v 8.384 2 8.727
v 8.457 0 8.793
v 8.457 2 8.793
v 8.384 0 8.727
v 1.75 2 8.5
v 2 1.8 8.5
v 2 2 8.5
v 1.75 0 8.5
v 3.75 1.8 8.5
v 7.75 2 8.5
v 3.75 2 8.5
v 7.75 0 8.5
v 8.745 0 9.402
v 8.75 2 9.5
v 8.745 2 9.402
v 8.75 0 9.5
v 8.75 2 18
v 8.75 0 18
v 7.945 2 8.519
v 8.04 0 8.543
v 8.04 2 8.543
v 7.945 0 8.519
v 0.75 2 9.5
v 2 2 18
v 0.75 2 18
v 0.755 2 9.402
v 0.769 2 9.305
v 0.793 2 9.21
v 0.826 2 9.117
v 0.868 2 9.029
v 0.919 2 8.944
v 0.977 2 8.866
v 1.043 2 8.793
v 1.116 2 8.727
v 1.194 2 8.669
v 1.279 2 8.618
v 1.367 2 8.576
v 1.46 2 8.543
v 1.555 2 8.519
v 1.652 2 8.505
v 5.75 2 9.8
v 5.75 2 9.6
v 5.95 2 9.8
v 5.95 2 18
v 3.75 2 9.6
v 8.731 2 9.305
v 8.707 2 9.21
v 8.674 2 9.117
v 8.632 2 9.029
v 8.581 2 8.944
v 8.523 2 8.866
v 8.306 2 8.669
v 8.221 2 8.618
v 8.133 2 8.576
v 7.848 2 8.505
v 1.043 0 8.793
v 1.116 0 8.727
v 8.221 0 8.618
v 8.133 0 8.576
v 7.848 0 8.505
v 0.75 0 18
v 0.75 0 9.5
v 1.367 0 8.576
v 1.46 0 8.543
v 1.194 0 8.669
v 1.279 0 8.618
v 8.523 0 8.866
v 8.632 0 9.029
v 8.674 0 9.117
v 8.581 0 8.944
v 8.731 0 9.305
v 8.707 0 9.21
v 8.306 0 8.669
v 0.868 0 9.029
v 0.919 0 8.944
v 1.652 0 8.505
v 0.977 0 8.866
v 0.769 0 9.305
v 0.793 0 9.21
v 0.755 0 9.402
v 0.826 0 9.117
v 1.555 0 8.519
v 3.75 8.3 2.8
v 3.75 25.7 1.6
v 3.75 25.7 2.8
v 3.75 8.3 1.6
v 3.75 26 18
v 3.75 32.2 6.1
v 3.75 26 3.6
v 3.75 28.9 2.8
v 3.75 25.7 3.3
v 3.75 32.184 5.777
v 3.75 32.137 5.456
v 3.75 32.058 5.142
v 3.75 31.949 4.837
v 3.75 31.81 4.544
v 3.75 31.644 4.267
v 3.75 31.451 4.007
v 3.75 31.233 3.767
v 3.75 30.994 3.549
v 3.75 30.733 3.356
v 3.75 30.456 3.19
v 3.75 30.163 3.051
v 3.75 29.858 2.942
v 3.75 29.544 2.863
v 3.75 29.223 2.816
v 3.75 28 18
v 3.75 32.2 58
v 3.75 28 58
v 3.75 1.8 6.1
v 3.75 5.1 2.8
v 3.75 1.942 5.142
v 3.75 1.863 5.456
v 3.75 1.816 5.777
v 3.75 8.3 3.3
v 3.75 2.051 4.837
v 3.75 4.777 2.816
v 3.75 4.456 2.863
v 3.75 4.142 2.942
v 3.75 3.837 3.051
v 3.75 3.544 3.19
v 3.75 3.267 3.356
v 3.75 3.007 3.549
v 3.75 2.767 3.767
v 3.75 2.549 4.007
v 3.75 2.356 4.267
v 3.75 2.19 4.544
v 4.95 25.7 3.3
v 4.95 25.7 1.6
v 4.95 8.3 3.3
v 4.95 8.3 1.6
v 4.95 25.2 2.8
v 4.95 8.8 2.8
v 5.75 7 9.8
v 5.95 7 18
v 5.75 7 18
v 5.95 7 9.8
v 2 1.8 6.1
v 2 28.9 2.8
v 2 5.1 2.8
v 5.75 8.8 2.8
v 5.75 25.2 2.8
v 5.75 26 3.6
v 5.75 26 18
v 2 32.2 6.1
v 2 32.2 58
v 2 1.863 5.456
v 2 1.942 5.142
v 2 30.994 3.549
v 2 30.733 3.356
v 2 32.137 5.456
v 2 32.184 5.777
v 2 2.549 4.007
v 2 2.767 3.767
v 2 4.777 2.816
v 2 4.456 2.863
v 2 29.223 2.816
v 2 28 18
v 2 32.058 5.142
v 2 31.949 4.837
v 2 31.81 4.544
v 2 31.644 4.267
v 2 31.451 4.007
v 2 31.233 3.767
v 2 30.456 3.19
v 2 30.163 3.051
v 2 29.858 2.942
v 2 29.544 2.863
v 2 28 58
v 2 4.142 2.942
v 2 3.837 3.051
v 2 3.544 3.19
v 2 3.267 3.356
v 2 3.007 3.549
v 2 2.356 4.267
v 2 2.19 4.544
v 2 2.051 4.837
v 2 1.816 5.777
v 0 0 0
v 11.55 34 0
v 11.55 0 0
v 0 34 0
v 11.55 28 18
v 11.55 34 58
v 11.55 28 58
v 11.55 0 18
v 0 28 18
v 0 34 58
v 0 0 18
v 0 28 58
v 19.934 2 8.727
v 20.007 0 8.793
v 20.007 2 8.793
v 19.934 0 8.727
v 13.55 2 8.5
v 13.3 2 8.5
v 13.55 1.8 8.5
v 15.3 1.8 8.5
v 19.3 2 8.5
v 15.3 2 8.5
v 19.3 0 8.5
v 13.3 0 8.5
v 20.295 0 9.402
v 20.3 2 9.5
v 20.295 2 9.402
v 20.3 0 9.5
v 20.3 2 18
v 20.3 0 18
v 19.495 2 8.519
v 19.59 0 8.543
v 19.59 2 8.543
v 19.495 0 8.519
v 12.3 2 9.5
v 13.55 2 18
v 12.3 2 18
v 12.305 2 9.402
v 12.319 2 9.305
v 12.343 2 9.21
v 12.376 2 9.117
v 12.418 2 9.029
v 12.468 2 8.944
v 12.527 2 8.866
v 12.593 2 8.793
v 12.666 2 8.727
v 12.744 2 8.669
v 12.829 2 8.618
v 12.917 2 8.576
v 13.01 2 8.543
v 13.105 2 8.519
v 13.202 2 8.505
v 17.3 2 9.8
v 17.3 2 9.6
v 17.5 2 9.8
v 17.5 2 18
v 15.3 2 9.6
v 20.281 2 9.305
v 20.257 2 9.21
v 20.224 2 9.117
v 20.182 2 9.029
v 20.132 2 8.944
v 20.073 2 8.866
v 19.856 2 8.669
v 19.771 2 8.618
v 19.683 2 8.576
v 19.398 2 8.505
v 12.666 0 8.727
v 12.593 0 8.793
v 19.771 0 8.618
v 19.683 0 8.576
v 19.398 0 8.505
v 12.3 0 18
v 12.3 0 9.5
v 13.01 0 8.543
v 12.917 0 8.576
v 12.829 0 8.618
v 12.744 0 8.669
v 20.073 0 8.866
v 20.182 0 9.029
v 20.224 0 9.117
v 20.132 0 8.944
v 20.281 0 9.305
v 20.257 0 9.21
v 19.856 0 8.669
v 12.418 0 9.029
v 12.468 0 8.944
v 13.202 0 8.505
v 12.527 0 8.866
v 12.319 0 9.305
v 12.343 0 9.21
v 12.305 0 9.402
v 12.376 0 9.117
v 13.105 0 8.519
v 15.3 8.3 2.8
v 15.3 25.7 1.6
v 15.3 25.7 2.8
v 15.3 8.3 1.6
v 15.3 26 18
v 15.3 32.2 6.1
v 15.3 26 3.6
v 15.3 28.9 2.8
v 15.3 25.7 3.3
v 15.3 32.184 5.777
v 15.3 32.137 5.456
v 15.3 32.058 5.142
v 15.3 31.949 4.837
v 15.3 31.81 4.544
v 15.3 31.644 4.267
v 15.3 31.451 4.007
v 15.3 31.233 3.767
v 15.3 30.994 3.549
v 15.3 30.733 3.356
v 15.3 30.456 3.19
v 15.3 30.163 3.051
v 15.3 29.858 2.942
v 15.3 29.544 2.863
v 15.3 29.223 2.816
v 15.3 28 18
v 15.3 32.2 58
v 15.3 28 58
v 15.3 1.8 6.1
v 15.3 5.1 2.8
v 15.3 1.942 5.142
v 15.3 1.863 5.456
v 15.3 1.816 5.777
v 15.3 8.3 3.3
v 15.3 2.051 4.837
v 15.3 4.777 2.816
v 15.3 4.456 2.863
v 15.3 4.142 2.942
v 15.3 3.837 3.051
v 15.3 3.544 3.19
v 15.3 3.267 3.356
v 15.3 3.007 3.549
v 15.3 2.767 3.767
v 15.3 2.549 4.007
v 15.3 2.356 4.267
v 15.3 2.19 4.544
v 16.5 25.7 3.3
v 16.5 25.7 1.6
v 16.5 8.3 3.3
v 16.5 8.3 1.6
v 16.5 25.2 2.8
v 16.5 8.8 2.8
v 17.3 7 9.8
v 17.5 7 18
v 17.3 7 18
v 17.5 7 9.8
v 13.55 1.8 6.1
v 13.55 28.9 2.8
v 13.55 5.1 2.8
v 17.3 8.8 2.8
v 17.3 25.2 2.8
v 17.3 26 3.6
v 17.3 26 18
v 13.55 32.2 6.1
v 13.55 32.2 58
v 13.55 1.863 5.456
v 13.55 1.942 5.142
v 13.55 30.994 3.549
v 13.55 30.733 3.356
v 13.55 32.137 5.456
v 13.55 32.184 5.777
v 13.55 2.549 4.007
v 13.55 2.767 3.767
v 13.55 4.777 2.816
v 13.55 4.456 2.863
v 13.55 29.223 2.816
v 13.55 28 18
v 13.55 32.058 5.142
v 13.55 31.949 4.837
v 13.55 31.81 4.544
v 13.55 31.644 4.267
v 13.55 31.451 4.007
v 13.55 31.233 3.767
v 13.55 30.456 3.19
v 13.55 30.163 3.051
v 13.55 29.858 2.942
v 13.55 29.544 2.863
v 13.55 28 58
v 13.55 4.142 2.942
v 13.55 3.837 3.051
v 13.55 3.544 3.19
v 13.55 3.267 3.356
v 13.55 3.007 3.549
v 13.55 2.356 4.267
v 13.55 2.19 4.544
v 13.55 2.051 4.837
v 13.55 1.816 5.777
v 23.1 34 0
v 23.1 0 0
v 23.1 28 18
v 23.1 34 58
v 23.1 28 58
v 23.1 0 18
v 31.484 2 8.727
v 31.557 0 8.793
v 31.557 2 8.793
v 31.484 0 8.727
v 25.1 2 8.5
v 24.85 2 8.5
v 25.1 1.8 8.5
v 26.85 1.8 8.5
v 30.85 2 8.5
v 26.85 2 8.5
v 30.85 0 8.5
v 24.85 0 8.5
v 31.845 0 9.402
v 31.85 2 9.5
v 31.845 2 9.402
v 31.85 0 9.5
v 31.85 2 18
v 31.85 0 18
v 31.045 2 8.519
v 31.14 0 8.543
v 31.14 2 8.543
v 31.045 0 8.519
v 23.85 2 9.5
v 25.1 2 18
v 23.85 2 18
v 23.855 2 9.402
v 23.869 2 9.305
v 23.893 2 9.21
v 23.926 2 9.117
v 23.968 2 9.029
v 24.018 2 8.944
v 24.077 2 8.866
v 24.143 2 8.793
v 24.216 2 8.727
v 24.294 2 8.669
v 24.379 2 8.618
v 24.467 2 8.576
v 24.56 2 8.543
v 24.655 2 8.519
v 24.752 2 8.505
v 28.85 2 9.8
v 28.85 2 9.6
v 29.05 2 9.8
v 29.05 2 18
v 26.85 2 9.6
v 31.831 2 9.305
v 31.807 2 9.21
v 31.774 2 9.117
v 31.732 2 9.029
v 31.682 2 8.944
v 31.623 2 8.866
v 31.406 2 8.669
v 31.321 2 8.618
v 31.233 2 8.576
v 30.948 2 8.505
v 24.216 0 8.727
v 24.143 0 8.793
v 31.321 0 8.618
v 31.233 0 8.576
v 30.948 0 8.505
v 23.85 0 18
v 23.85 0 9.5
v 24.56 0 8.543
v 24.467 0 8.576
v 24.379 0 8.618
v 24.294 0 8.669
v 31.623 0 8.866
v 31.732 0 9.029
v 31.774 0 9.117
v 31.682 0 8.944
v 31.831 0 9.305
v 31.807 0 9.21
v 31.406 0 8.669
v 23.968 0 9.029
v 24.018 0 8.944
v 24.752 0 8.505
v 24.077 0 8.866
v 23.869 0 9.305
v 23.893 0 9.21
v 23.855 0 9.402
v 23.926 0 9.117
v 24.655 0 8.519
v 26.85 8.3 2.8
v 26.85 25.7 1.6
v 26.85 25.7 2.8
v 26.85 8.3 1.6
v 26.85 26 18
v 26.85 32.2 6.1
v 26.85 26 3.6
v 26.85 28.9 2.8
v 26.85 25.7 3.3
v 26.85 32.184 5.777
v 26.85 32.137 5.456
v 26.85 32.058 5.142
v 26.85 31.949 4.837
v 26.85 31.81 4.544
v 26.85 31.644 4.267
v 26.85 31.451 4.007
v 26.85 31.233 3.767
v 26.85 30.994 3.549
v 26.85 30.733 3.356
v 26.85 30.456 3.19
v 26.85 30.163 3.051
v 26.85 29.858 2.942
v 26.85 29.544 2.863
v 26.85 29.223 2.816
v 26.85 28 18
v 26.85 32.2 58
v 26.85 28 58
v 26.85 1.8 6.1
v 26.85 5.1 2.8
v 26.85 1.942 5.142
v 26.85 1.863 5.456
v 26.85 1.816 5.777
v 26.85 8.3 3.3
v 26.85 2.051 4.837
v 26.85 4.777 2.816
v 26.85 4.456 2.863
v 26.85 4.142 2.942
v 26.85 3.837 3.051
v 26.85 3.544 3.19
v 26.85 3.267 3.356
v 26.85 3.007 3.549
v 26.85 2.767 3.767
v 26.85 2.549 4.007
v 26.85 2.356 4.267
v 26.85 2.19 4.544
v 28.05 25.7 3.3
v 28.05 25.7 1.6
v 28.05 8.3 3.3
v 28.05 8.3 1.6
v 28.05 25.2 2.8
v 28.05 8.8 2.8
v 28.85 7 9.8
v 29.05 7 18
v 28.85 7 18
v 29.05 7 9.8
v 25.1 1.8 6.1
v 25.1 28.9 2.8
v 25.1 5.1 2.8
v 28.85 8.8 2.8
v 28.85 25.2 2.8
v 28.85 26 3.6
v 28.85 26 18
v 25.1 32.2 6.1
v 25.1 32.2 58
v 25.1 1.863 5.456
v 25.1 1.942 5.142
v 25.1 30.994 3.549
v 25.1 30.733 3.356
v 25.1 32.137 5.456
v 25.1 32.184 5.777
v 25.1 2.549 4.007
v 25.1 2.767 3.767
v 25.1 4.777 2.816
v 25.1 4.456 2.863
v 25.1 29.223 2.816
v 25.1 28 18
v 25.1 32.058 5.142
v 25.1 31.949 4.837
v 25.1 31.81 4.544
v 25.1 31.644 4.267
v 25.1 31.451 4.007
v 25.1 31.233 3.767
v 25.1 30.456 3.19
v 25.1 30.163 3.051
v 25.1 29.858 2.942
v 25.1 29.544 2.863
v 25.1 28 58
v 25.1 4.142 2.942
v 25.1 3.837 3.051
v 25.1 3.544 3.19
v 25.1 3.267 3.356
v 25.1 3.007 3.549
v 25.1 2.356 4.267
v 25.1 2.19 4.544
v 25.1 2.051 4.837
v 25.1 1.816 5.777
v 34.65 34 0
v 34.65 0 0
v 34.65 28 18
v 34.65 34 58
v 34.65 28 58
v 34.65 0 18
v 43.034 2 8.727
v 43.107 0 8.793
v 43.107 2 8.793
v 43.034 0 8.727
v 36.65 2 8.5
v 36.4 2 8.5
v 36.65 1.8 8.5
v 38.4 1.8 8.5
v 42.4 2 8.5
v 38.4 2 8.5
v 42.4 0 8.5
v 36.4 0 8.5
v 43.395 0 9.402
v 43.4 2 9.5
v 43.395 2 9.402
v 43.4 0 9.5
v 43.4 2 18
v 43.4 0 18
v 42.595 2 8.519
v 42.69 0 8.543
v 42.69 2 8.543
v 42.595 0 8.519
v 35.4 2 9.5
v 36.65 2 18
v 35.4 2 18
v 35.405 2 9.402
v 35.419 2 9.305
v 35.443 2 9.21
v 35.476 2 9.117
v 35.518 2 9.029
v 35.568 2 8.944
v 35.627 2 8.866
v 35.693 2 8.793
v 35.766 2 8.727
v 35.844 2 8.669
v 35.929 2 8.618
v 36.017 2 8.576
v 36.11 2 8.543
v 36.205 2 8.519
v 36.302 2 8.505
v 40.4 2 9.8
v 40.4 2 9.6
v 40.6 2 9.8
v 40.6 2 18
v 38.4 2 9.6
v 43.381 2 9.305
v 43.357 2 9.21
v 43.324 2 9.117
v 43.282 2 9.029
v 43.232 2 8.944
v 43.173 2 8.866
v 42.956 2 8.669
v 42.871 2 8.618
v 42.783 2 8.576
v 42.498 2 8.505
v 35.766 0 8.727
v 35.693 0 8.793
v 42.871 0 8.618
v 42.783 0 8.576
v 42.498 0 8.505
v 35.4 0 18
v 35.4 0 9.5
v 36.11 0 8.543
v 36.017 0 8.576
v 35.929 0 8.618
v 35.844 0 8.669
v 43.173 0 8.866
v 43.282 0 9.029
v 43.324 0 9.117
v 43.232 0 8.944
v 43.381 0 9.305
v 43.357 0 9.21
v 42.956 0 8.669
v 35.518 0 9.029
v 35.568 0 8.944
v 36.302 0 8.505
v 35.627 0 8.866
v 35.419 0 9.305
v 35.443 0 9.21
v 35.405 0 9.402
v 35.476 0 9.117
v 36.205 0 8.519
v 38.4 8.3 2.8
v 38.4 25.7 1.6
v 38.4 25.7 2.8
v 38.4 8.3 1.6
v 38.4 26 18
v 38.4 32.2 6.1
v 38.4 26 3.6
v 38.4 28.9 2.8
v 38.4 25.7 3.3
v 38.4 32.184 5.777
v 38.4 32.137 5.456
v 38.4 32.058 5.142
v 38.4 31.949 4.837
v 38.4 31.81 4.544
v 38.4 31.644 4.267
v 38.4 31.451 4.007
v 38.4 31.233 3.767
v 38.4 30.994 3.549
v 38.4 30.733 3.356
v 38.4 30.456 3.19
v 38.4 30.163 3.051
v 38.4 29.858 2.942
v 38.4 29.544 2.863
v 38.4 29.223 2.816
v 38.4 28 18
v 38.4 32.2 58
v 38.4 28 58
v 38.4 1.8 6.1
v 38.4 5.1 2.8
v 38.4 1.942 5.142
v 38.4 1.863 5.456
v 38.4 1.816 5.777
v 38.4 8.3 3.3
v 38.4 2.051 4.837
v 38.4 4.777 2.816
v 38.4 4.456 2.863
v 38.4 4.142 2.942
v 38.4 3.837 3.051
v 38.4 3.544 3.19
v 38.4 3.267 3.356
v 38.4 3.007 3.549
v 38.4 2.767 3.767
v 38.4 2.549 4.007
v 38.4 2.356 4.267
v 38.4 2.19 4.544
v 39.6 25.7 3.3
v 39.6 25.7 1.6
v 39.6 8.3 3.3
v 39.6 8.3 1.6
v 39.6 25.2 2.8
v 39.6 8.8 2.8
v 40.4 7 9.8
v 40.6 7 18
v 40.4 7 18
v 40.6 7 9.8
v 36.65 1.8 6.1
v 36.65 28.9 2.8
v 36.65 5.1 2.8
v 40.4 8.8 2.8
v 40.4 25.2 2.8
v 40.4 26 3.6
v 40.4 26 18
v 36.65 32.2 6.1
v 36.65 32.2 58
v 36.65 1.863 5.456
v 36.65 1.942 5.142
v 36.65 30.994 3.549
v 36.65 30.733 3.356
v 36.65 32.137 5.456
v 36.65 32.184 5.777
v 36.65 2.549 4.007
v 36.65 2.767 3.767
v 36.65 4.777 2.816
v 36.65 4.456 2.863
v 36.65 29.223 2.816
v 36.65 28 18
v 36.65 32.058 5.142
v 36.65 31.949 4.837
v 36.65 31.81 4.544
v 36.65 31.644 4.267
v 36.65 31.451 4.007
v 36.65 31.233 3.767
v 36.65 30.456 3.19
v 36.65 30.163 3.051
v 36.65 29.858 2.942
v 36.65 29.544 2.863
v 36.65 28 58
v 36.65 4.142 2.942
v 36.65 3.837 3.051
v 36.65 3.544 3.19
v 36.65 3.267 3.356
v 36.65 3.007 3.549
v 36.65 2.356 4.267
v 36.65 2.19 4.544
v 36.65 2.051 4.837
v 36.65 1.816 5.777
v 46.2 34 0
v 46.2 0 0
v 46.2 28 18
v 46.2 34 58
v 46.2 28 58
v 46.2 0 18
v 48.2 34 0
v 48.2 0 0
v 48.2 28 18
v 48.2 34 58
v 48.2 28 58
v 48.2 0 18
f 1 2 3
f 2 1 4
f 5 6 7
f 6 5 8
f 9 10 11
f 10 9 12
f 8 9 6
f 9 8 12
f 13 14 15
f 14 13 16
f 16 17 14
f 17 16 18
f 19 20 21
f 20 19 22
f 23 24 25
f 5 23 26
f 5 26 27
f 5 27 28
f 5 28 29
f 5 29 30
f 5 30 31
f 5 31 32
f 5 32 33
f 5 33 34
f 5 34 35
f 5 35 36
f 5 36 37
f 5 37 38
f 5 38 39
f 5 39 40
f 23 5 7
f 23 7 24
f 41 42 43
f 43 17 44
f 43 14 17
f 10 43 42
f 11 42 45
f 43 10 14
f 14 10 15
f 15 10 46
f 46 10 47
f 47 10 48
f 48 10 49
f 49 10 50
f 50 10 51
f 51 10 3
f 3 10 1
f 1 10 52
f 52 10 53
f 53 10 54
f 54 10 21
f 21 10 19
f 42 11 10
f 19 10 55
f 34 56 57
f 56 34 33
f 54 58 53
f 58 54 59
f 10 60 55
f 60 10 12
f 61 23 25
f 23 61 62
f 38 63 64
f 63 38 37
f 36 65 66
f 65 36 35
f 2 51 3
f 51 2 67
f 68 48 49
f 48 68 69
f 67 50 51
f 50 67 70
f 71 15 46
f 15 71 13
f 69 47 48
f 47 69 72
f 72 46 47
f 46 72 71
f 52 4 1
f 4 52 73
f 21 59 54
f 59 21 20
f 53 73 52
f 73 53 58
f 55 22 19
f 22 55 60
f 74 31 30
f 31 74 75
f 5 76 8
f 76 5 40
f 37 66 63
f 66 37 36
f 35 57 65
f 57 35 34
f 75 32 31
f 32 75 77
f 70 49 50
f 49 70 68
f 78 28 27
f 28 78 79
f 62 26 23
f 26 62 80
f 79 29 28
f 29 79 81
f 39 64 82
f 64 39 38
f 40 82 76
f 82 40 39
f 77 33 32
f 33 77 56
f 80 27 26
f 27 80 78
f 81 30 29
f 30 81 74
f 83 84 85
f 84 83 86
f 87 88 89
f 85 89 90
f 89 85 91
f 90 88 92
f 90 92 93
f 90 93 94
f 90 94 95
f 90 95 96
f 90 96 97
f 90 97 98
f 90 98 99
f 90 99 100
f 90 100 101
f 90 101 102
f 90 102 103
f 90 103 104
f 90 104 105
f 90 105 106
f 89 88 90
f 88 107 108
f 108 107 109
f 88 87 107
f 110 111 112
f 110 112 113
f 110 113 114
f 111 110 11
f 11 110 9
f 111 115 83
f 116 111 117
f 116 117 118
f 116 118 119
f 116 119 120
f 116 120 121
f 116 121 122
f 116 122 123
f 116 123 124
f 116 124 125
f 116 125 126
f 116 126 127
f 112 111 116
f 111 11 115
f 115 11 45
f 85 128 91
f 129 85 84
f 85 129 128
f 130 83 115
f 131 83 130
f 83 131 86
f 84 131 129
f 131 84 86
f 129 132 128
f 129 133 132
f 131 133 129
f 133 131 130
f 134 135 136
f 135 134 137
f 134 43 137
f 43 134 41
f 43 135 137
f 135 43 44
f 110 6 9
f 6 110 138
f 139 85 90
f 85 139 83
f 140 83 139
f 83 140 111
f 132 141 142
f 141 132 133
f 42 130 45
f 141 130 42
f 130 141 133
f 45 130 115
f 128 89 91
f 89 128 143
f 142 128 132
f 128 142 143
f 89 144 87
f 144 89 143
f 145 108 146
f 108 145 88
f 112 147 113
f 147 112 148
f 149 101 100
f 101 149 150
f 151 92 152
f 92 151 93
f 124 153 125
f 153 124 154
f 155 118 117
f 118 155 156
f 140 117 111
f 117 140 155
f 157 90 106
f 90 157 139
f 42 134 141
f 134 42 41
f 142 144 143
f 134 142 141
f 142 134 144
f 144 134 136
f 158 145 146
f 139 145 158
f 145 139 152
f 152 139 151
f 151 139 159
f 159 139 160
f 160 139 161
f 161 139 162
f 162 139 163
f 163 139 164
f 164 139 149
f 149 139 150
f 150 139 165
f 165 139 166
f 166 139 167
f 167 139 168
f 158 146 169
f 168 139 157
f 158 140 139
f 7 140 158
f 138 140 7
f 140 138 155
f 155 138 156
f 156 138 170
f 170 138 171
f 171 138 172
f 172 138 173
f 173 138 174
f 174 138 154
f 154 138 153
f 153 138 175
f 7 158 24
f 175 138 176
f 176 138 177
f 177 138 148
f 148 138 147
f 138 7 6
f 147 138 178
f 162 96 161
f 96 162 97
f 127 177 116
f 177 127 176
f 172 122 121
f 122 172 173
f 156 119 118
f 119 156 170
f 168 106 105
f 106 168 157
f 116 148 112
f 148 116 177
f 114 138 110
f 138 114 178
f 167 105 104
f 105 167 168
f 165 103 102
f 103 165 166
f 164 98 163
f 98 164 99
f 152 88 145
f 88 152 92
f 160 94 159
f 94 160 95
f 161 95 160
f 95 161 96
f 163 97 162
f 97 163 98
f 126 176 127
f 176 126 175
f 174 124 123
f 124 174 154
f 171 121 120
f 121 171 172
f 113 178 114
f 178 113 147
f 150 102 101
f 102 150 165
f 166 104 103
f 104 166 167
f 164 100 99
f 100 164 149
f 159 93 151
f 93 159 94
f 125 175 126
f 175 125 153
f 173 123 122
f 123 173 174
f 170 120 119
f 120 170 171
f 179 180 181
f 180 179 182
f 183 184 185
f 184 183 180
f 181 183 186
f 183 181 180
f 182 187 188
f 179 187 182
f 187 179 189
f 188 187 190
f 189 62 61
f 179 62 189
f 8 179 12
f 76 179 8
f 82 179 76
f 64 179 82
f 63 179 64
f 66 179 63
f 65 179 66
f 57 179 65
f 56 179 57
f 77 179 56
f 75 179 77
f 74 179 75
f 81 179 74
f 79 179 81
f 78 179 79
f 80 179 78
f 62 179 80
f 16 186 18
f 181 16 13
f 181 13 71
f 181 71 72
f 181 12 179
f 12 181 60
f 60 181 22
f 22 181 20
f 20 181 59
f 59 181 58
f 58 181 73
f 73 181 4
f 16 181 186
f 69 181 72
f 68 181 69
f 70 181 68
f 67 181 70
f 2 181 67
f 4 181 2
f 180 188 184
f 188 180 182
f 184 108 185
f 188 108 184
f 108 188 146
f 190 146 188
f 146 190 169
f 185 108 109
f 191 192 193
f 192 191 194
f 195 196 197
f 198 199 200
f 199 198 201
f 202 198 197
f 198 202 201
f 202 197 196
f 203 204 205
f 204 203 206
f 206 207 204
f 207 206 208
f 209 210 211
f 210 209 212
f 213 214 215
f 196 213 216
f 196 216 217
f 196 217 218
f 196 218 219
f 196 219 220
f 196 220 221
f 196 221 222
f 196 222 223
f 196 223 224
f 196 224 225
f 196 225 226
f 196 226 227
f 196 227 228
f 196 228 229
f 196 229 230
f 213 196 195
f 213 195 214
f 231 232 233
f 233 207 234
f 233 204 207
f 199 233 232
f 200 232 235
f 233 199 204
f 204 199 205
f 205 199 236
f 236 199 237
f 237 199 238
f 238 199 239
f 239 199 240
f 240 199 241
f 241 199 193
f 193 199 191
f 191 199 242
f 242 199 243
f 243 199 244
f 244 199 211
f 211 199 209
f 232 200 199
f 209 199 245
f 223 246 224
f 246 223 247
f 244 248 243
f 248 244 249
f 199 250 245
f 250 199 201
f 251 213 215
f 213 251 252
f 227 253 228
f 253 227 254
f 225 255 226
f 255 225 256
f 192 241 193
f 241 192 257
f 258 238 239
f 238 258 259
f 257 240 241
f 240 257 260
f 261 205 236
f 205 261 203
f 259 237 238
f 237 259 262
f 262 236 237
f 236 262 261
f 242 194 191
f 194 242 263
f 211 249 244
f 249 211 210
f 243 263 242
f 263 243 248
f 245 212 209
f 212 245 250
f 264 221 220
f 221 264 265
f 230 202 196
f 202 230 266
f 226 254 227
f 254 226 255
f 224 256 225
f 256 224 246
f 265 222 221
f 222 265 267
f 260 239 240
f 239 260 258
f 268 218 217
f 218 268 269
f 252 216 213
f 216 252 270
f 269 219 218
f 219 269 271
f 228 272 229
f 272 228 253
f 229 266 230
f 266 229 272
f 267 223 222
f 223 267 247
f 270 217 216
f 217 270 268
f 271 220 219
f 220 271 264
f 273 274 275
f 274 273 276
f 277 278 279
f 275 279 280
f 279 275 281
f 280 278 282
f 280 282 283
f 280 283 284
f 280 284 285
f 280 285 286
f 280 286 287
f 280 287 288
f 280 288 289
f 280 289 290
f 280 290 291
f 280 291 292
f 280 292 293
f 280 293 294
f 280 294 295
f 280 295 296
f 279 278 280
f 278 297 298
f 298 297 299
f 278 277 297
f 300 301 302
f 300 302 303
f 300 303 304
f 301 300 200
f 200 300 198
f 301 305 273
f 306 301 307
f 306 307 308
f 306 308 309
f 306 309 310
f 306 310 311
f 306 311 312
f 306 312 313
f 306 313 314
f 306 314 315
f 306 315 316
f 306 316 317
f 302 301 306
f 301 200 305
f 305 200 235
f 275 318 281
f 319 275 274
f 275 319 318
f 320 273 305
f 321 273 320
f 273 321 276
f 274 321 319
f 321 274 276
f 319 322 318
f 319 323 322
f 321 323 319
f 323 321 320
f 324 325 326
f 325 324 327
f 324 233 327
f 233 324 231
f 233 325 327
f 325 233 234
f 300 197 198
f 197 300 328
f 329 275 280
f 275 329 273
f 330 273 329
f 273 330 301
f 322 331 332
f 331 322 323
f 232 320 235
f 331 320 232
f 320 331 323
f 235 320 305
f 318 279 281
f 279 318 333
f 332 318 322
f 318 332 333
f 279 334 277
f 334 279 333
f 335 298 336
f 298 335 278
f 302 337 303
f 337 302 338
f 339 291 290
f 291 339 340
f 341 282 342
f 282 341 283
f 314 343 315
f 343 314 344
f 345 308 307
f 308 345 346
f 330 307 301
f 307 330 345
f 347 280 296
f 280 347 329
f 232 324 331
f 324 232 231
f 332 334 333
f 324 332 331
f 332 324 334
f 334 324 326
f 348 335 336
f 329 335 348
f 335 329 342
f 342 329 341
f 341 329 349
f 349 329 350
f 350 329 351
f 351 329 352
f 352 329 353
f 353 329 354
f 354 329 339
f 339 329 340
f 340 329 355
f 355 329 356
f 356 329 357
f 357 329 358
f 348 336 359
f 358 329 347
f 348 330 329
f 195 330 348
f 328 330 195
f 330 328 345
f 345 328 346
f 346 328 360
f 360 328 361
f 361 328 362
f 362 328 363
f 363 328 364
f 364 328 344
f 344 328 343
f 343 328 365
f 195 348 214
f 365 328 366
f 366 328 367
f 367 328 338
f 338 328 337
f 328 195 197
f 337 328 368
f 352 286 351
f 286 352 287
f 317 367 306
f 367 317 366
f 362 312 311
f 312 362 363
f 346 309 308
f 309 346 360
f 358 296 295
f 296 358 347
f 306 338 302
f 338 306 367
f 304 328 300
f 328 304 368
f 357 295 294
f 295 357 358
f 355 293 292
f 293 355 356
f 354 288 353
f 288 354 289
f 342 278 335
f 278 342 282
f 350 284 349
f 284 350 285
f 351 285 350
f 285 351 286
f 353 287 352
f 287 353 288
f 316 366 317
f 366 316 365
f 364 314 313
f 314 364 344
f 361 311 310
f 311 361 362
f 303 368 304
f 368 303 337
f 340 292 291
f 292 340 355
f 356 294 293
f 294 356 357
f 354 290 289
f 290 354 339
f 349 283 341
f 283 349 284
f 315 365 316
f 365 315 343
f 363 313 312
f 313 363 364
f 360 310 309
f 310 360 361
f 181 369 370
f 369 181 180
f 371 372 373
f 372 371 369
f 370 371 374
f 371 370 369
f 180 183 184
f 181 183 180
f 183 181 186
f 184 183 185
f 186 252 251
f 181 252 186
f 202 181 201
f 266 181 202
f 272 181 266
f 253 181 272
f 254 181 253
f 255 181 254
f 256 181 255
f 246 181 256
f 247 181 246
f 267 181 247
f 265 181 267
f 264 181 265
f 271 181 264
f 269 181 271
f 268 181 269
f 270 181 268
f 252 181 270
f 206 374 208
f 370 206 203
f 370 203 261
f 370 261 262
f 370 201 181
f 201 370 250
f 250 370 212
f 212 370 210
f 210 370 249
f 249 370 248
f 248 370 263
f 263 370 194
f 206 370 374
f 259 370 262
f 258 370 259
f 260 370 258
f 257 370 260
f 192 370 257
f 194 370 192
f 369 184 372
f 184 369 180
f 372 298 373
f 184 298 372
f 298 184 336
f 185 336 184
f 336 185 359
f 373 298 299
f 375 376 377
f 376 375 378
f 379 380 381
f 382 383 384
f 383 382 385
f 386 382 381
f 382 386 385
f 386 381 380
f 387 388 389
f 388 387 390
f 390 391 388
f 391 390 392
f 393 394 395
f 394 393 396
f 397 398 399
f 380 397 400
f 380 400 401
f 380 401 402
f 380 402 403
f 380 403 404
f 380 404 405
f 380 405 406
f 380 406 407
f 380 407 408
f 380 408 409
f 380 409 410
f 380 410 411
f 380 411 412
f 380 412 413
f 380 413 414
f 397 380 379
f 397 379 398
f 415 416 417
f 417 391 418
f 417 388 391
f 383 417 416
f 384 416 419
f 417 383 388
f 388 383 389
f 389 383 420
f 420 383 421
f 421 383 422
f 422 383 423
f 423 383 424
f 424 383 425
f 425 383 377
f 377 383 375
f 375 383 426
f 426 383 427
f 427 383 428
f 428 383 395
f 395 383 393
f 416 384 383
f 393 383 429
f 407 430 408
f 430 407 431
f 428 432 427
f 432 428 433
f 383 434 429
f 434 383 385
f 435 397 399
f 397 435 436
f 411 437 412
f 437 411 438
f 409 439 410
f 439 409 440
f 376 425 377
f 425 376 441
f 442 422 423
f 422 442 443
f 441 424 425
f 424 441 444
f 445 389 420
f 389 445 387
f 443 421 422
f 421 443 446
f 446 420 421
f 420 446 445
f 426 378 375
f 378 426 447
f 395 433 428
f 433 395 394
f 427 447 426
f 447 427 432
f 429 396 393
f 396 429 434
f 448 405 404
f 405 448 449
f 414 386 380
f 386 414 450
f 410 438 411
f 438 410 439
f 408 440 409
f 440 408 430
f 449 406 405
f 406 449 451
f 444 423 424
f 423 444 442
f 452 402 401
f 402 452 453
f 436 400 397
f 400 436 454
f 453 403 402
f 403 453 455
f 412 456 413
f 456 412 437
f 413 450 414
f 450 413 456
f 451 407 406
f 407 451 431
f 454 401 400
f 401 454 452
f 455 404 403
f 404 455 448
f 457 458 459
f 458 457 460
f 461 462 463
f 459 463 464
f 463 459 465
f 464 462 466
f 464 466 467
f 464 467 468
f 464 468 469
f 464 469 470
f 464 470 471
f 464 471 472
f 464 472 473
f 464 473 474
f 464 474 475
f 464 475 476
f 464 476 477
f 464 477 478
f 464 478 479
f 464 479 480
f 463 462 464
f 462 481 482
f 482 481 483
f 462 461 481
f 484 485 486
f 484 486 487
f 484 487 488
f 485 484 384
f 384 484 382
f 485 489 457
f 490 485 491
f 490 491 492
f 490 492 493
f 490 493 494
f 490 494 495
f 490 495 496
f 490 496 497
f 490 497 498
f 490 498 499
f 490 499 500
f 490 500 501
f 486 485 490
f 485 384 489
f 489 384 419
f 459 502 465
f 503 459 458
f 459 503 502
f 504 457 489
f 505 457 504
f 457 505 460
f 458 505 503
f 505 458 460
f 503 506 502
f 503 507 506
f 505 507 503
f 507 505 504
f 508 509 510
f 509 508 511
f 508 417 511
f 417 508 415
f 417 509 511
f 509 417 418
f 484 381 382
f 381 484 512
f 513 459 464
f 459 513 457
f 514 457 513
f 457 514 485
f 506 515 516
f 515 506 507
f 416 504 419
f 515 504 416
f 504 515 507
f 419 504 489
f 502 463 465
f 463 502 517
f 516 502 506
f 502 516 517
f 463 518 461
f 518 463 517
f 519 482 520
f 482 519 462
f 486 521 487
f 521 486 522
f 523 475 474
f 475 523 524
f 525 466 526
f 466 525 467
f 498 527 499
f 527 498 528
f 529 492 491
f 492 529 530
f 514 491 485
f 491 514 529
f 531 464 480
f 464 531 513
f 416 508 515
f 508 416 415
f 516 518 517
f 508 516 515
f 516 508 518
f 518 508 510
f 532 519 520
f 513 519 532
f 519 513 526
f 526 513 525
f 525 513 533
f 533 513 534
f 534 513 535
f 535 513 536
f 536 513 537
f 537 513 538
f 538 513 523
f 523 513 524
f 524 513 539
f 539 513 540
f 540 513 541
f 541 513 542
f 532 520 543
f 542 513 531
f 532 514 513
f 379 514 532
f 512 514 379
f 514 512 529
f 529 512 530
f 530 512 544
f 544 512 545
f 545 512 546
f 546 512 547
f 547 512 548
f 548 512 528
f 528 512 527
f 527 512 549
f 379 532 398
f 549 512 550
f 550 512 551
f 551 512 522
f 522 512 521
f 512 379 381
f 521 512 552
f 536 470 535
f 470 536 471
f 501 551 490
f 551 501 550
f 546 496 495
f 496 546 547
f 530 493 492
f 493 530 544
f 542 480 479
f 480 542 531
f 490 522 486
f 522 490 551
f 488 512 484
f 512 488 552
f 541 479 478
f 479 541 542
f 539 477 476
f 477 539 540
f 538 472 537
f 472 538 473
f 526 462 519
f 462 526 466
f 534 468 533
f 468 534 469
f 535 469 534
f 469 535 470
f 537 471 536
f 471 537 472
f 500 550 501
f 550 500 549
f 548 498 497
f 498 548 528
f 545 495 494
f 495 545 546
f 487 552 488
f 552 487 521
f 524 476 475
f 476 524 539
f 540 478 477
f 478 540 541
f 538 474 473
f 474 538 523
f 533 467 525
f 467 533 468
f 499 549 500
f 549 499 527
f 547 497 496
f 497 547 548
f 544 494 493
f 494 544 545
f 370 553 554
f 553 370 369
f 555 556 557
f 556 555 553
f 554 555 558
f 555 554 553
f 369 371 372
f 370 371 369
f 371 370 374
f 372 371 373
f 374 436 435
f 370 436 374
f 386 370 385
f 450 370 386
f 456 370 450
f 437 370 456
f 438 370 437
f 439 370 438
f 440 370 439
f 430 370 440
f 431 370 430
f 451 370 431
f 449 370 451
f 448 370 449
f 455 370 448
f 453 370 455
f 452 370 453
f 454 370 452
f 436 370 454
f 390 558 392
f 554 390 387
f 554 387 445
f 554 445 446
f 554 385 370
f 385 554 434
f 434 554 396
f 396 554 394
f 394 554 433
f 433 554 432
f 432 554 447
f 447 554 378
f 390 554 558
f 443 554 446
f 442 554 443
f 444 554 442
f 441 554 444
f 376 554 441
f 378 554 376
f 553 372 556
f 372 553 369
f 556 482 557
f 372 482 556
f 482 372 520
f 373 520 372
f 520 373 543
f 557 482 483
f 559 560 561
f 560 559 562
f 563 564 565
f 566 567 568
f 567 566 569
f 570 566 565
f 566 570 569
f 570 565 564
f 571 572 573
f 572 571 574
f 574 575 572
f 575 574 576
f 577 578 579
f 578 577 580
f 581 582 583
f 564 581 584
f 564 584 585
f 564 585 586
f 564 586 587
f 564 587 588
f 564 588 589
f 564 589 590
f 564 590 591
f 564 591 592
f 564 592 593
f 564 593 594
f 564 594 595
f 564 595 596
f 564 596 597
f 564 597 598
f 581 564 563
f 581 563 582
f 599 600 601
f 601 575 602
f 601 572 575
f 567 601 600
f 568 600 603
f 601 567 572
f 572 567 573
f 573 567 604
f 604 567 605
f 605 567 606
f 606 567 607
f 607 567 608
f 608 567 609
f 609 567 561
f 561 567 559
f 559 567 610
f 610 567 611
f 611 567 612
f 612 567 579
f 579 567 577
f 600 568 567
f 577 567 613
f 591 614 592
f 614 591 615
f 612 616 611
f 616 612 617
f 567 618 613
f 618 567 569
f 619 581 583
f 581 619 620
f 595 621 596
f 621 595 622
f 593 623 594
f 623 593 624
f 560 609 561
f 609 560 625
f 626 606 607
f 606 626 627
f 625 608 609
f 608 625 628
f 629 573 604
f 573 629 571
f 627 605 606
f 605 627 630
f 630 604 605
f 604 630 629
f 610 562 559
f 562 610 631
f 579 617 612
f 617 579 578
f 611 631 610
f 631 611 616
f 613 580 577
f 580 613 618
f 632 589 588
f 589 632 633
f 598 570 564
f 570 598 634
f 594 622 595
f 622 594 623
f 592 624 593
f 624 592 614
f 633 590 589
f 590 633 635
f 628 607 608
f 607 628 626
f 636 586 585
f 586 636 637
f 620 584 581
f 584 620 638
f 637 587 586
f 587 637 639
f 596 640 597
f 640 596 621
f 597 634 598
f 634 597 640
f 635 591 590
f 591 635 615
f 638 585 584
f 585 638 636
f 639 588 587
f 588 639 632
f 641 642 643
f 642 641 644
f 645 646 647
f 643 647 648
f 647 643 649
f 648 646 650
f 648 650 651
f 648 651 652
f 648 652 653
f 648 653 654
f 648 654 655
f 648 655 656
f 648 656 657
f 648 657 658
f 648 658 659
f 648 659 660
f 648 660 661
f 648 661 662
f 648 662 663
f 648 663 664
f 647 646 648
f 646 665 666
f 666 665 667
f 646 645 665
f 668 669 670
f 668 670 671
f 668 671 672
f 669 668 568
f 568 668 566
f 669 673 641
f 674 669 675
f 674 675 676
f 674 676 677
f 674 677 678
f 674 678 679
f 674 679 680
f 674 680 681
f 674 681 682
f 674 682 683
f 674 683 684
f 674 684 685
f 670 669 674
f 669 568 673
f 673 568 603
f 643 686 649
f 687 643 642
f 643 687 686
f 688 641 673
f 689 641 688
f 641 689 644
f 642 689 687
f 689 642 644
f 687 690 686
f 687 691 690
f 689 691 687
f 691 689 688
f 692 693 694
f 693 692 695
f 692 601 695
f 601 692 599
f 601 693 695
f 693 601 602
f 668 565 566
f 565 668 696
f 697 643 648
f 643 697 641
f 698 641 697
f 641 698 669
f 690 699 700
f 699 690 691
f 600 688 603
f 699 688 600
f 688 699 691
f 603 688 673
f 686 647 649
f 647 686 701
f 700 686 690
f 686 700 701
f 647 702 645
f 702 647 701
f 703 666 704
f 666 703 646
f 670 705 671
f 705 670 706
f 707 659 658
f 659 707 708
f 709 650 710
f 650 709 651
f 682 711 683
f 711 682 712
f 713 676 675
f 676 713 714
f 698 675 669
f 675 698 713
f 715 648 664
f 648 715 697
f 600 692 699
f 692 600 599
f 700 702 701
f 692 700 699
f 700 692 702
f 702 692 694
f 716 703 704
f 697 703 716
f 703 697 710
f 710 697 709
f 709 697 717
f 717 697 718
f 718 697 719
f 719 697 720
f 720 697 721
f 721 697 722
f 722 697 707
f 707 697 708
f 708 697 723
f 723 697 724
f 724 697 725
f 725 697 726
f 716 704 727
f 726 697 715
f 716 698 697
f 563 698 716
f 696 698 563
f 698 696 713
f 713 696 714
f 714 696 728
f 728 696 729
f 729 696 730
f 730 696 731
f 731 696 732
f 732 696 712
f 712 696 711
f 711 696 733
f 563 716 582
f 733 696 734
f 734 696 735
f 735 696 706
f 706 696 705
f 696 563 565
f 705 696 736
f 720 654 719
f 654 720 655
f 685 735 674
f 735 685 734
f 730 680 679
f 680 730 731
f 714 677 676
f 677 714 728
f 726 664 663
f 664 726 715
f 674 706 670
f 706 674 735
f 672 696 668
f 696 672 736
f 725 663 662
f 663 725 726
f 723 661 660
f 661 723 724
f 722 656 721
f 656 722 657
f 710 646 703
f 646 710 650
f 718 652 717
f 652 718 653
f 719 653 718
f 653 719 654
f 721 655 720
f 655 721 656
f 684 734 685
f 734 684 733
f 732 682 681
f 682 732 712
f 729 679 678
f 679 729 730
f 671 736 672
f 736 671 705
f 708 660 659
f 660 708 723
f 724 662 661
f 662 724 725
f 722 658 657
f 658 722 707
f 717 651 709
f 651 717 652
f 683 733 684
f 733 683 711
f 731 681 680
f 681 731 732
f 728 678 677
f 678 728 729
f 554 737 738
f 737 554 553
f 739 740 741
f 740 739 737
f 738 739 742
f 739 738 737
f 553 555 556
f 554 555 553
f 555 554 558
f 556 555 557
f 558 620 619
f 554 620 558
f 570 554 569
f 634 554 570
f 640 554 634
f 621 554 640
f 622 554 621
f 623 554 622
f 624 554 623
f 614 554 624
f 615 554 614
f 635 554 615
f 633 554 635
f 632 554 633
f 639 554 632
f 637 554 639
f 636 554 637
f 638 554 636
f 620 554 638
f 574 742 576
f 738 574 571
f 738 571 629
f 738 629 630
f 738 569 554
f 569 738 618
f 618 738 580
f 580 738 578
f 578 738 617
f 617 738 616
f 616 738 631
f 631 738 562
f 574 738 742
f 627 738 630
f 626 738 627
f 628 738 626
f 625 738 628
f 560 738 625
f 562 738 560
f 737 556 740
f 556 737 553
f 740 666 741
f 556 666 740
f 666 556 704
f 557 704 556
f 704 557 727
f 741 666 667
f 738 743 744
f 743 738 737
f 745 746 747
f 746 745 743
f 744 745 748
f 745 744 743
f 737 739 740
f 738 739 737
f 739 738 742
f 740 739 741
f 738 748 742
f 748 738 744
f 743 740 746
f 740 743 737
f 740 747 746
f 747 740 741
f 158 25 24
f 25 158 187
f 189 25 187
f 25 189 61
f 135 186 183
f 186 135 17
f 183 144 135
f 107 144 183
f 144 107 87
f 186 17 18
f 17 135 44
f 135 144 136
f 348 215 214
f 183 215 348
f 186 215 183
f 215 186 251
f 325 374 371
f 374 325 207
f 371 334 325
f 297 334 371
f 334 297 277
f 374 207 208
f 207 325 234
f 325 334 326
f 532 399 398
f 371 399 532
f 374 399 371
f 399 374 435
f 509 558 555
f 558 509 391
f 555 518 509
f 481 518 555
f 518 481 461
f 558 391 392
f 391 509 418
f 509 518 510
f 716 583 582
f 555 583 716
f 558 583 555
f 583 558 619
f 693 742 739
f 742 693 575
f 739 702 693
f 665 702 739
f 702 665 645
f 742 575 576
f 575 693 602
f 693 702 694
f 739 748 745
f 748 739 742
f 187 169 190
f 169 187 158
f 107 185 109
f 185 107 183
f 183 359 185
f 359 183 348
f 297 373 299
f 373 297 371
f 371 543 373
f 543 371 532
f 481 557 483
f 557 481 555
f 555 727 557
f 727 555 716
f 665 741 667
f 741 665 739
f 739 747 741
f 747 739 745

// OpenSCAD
// file: pi-zero.scad
use <rounded-rect.scad>;

piZero(cutOutCorners = true, cutOutGPIO = true);

module piZero(includeCables = true, includeHeatsink = true, heightPadding = 0, sdWidth = 12, cameraWidth = 17, r = 3.5, heatsinkHeight = 7, cutOutCorners = false, cutOutGPIO = false, printerTolerance = 0) {
    // base board
    color("green")
        difference() {
            linear_extrude(0, 0, 1.55 + 2 + heightPadding + printerTolerance)
                difference() {
                    roundedRect(30 + 2 * printerTolerance, 65 + 2 * printerTolerance, max(0, r - printerTolerance));
    //                union() {
    //                    translate([11.5 + printerTolerance, 29 + printerTolerance, 0]) circle(r = 1.25 - printerTolerance);
    //                    translate([-11.5 - printerTolerance, 29 + printerTolerance, 0]) circle(r = 1.25 - printerTolerance);
    //                    translate([11.5 + printerTolerance, -29 - printerTolerance, 0]) circle(r = 1.25 - printerTolerance);
    //                    translate([-11.5 - printerTolerance, -29 - printerTolerance, 0]) circle(r = 1.25 - printerTolerance);
    //                };
                };
                translate([0, 0, 1.55 + heightPadding + printerTolerance]) {
                    if (cutOutCorners) {
                        linear_extrude(0, 0, 3 + printerTolerance)
                            union() {
                                polygon([
                                    [-15-printerTolerance, -32.5-printerTolerance],
                                    [-15-printerTolerance, -32.5-printerTolerance+(2*r)],
                                    [-15-printerTolerance+(2*r), -32.5-printerTolerance]]);
                                polygon([
                                    [-15-printerTolerance, -1*(-32.5-printerTolerance)],
                                    [-15-printerTolerance, -1*(-32.5-printerTolerance+(2*r))],
                                    [-15-printerTolerance+(2*r), -1*(-32.5-printerTolerance)]]);
                                polygon([
                                    [-1*(-15-printerTolerance), -1*(-32.5-printerTolerance)],
                                    [-1*(-15-printerTolerance), -1*(-32.5-printerTolerance+(2*r))],
                                    [-1*(-15-printerTolerance+(2*r)), -1*(-32.5-printerTolerance)]]);
                                polygon([
                                    [-1*(-15-printerTolerance), -32.5-printerTolerance],
                                    [-1*(-15-printerTolerance), -32.5-printerTolerance+(2*r)],
                                    [-1*(-15-printerTolerance+(2*r)), -32.5-printerTolerance]]);
                            };
                    }
                    if (cutOutGPIO) {
                        linear_extrude(0, 0, 3 + printerTolerance)
                            translate([9, -32.5-printerTolerance, 0])
                                square([6.5 + printerTolerance, 65 + 2*(printerTolerance)]);
                    }
                }
    }
    // top stuff
    translate([0, 0, 1.55 + printerTolerance])
        color("cyan")
            union() {
                // camera port cover
                linear_extrude(0, 0, 1 + heightPadding + printerTolerance)
                    translate([0, -32.5 - printerTolerance, 0])
                        square([cameraWidth + 2 * printerTolerance, 2 + 2 * printerTolerance], center = true);
                // micro usb ports
                translate([-10, -8.9, 1])
                    rotate([0, -90, 0])
                        linear_extrude(0, 0, 6)
                            square([2 + 2 * printerTolerance, 8 + 2 * printerTolerance], center = true);
                translate([-10, -21.5, 1])
                    rotate([0, -90, 0])
                        linear_extrude(0, 0, 6)
                            square([2 + 2 * printerTolerance, 8 + 2 * printerTolerance], center = true);
                // micro usb port things
                if (includeCables) {
                    translate([-15, -8.9, 1])
                        rotate([0, -90, 0])
                            linear_extrude(0, 0, 8)
                                roundedRect(8, 11, 1);
                    translate([-15, -21.5, 1])
                        rotate([0, -90, 0])
                            linear_extrude(0, 0, 8)
                                roundedRect(8, 11, 1);
                }
                // micro hdmi port
                translate([-7, 20.1, 1.7])
                    rotate([0, -90, 0])
                        linear_extrude(0, 0, 9.5)
                            square([3.4 + 2 * printerTolerance, 11.5 + 2 * printerTolerance], center = true);
                // micro hdmi adapter
                if (includeCables) {
                    translate([-15, 20.1, 1.7])
                        rotate([0, -90, 0])
                            linear_extrude(0, 0, 9.5)
                                roundedRect(9 + 2 * printerTolerance, 14 + 2* printerTolerance, 2);
                }
                
                // microsd card
                translate([1.9, 28, 0])
                    linear_extrude(0, 0, 1.5 + heightPadding)
                        square([sdWidth + 2 * printerTolerance, 16 + 2 * printerTolerance], center = true);
                
                // cpu heatsink
                if (includeHeatsink) {
                    linear_extrude(0, 0, heatsinkHeight) {
                        // pi zero
                        translate([-2.5, 32.5 - 24.5 - 7, 0])
                            square([15, 15], center = true);
                        // pi zero w
                        translate([-3, 32.5 - 18.5 - 7, 0])
                            square([15, 15], center = true);
                    }
                }
            };
}
// file: rounded-rect.scad
$fn = 64;

linear_extrude(0, 0, 1) roundedRect(10, 20, 2);

module roundedRect(w, h, r) {
    square([w - 2 * r, h], center = true);
    square([w, h - 2 * r], center = true);
    translate([w/2 - r, h/2 - r, 0]) circle(r = r);
    translate([-(w/2 - r), h/2 - r, 0]) circle(r = r);
    translate([w/2 - r, -(h/2 - r), 0]) circle(r = r);
    translate([-(w/2 - r), -(h/2 - r), 0]) circle(r = r);
}
// main file
use <rounded-rect.scad>;
use <pi-zero.scad>;

printerTolerance = 0.2;
piCount = 4;

piThickness = 1.55;
piWidth = 30;
piLength = 65;

heatsinkHeight = 8;

slotWidth = heatsinkHeight + piThickness;
slotDepth = piWidth;
slotHeight = 55;
baseThickness = 3;
wallThickness = 2;
scoopDepth = 25;
scoopHeight = 15;

// how far the pi's bottom needs to be vertically sunk into the slot
piSinkDepth = slotWidth - piThickness - heatsinkHeight - printerTolerance;

multiSlot();

module multiSlot() {
    difference() {
        union() {
            for (i = [0:piCount-1]) {
                translate([i * (slotWidth + wallThickness), 0, 0])
                    piSlot();
            }
            // end wall
            translate([piCount * (slotWidth + wallThickness), 0, 0])
                linear_extrude(0, 0, slotHeight + baseThickness)
                    square([wallThickness, slotDepth + 2*wallThickness]);
        };
        // the scoop
        translate([-1, -1, baseThickness + scoopHeight])
            linear_extrude(0, 0, slotHeight)
                square([(piCount + 1) * (slotWidth + wallThickness), scoopDepth + wallThickness + 2]);
    }
}

module piSlot() {
    difference() {
        // the actual frame
        linear_extrude(0, 0, slotHeight + baseThickness)
            square([wallThickness + slotWidth, slotDepth + 2*wallThickness]);
        // pi cutout
        translate([wallThickness, wallThickness, baseThickness])
            piCutout();
    }
}

module piCutout () {
    translate([-piSinkDepth, piWidth, 0])
    rotate([90, 0, 0])
    rotate([0, 90, 0])
    translate([-piWidth/2, piLength/2, -printerTolerance])
    piZero(includeCables = true, heatsinkHeight = heatsinkHeight, cutOutCorners = true, cutOutGPIO = true, printerTolerance = printerTolerance);
}
